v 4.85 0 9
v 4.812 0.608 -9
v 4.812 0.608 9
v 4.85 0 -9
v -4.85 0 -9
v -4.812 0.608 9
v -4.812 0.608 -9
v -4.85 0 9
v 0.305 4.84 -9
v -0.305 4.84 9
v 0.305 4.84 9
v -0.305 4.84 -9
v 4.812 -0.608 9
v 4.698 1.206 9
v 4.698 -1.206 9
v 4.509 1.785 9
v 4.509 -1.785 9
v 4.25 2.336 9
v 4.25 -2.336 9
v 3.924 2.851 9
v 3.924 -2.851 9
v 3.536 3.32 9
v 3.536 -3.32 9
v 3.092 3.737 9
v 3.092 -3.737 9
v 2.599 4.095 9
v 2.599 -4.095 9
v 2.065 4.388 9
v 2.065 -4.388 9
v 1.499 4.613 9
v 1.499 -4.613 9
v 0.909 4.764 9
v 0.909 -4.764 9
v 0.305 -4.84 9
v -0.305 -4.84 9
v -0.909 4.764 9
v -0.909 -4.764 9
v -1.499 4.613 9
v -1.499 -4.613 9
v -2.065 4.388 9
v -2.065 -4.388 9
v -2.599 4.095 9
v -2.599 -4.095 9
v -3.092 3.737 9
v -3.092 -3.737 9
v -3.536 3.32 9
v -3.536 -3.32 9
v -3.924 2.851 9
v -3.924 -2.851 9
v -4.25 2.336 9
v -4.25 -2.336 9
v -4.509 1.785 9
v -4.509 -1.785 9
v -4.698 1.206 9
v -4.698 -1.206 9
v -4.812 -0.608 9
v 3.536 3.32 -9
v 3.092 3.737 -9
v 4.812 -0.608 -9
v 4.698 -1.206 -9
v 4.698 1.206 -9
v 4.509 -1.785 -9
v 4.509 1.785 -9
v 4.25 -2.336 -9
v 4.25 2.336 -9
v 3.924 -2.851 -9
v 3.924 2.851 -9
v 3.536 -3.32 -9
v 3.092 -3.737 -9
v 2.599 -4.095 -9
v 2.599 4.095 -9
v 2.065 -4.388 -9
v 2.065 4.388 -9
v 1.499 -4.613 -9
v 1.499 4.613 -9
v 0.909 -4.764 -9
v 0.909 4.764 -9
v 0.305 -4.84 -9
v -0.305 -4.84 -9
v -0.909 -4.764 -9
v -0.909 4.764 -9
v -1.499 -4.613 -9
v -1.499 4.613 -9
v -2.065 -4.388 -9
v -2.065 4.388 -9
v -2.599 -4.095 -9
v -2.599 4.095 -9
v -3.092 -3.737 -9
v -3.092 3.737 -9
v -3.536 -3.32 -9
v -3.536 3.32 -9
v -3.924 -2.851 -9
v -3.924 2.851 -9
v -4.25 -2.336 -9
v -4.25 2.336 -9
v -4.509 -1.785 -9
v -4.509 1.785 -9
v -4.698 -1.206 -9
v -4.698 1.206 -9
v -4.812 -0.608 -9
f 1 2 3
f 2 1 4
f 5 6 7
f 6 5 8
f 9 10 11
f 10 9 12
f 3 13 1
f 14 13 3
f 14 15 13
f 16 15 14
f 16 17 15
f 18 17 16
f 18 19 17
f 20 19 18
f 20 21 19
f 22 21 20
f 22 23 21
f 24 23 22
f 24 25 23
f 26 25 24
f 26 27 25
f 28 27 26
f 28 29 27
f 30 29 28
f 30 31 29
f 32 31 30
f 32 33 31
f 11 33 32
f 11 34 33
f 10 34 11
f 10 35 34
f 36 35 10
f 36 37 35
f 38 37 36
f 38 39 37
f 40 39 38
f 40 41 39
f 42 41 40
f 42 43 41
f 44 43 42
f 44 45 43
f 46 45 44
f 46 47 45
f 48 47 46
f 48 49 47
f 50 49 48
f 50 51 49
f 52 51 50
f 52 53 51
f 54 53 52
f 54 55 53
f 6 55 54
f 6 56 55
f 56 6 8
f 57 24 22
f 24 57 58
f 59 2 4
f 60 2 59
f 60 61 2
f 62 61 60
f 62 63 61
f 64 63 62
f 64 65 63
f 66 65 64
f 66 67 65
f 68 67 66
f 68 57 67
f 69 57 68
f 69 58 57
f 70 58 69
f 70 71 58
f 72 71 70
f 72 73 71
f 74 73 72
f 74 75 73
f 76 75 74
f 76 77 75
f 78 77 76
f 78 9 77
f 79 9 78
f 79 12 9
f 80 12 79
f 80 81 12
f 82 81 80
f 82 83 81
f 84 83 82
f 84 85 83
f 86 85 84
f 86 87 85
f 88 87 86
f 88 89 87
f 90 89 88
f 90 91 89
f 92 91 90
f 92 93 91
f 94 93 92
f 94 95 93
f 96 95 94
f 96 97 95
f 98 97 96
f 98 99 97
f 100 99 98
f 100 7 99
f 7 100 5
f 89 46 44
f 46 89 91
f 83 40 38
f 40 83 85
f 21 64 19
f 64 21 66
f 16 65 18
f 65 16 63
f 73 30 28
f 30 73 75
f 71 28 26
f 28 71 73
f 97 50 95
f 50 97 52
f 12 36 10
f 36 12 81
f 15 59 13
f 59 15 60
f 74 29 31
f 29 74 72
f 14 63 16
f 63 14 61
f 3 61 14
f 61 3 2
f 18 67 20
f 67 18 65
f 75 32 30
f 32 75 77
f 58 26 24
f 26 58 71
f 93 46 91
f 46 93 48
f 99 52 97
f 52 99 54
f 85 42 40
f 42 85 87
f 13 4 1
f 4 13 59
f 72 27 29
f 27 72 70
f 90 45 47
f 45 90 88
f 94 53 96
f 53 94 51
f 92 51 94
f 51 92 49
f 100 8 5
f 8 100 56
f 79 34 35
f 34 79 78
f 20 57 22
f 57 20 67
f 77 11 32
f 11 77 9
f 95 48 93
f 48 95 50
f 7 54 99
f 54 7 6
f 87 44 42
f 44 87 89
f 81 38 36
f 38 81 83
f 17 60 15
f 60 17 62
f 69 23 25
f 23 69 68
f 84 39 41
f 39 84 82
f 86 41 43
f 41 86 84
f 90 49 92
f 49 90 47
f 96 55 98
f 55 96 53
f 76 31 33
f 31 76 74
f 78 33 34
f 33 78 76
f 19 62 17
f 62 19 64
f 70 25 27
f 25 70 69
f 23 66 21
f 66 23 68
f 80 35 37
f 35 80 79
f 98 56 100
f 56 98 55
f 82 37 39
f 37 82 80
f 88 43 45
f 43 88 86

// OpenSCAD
$fn = 50;


difference() {
	union() {
		translate(v = [0, 0, -9.0000000000]) {
			cylinder(h = 18, r = 4.8500000000);
		}
	}
	union() {
		translate(v = [0, 0, -100.0000000000]) {
			cylinder(h = 200, r = 0);
		}
	}
}
